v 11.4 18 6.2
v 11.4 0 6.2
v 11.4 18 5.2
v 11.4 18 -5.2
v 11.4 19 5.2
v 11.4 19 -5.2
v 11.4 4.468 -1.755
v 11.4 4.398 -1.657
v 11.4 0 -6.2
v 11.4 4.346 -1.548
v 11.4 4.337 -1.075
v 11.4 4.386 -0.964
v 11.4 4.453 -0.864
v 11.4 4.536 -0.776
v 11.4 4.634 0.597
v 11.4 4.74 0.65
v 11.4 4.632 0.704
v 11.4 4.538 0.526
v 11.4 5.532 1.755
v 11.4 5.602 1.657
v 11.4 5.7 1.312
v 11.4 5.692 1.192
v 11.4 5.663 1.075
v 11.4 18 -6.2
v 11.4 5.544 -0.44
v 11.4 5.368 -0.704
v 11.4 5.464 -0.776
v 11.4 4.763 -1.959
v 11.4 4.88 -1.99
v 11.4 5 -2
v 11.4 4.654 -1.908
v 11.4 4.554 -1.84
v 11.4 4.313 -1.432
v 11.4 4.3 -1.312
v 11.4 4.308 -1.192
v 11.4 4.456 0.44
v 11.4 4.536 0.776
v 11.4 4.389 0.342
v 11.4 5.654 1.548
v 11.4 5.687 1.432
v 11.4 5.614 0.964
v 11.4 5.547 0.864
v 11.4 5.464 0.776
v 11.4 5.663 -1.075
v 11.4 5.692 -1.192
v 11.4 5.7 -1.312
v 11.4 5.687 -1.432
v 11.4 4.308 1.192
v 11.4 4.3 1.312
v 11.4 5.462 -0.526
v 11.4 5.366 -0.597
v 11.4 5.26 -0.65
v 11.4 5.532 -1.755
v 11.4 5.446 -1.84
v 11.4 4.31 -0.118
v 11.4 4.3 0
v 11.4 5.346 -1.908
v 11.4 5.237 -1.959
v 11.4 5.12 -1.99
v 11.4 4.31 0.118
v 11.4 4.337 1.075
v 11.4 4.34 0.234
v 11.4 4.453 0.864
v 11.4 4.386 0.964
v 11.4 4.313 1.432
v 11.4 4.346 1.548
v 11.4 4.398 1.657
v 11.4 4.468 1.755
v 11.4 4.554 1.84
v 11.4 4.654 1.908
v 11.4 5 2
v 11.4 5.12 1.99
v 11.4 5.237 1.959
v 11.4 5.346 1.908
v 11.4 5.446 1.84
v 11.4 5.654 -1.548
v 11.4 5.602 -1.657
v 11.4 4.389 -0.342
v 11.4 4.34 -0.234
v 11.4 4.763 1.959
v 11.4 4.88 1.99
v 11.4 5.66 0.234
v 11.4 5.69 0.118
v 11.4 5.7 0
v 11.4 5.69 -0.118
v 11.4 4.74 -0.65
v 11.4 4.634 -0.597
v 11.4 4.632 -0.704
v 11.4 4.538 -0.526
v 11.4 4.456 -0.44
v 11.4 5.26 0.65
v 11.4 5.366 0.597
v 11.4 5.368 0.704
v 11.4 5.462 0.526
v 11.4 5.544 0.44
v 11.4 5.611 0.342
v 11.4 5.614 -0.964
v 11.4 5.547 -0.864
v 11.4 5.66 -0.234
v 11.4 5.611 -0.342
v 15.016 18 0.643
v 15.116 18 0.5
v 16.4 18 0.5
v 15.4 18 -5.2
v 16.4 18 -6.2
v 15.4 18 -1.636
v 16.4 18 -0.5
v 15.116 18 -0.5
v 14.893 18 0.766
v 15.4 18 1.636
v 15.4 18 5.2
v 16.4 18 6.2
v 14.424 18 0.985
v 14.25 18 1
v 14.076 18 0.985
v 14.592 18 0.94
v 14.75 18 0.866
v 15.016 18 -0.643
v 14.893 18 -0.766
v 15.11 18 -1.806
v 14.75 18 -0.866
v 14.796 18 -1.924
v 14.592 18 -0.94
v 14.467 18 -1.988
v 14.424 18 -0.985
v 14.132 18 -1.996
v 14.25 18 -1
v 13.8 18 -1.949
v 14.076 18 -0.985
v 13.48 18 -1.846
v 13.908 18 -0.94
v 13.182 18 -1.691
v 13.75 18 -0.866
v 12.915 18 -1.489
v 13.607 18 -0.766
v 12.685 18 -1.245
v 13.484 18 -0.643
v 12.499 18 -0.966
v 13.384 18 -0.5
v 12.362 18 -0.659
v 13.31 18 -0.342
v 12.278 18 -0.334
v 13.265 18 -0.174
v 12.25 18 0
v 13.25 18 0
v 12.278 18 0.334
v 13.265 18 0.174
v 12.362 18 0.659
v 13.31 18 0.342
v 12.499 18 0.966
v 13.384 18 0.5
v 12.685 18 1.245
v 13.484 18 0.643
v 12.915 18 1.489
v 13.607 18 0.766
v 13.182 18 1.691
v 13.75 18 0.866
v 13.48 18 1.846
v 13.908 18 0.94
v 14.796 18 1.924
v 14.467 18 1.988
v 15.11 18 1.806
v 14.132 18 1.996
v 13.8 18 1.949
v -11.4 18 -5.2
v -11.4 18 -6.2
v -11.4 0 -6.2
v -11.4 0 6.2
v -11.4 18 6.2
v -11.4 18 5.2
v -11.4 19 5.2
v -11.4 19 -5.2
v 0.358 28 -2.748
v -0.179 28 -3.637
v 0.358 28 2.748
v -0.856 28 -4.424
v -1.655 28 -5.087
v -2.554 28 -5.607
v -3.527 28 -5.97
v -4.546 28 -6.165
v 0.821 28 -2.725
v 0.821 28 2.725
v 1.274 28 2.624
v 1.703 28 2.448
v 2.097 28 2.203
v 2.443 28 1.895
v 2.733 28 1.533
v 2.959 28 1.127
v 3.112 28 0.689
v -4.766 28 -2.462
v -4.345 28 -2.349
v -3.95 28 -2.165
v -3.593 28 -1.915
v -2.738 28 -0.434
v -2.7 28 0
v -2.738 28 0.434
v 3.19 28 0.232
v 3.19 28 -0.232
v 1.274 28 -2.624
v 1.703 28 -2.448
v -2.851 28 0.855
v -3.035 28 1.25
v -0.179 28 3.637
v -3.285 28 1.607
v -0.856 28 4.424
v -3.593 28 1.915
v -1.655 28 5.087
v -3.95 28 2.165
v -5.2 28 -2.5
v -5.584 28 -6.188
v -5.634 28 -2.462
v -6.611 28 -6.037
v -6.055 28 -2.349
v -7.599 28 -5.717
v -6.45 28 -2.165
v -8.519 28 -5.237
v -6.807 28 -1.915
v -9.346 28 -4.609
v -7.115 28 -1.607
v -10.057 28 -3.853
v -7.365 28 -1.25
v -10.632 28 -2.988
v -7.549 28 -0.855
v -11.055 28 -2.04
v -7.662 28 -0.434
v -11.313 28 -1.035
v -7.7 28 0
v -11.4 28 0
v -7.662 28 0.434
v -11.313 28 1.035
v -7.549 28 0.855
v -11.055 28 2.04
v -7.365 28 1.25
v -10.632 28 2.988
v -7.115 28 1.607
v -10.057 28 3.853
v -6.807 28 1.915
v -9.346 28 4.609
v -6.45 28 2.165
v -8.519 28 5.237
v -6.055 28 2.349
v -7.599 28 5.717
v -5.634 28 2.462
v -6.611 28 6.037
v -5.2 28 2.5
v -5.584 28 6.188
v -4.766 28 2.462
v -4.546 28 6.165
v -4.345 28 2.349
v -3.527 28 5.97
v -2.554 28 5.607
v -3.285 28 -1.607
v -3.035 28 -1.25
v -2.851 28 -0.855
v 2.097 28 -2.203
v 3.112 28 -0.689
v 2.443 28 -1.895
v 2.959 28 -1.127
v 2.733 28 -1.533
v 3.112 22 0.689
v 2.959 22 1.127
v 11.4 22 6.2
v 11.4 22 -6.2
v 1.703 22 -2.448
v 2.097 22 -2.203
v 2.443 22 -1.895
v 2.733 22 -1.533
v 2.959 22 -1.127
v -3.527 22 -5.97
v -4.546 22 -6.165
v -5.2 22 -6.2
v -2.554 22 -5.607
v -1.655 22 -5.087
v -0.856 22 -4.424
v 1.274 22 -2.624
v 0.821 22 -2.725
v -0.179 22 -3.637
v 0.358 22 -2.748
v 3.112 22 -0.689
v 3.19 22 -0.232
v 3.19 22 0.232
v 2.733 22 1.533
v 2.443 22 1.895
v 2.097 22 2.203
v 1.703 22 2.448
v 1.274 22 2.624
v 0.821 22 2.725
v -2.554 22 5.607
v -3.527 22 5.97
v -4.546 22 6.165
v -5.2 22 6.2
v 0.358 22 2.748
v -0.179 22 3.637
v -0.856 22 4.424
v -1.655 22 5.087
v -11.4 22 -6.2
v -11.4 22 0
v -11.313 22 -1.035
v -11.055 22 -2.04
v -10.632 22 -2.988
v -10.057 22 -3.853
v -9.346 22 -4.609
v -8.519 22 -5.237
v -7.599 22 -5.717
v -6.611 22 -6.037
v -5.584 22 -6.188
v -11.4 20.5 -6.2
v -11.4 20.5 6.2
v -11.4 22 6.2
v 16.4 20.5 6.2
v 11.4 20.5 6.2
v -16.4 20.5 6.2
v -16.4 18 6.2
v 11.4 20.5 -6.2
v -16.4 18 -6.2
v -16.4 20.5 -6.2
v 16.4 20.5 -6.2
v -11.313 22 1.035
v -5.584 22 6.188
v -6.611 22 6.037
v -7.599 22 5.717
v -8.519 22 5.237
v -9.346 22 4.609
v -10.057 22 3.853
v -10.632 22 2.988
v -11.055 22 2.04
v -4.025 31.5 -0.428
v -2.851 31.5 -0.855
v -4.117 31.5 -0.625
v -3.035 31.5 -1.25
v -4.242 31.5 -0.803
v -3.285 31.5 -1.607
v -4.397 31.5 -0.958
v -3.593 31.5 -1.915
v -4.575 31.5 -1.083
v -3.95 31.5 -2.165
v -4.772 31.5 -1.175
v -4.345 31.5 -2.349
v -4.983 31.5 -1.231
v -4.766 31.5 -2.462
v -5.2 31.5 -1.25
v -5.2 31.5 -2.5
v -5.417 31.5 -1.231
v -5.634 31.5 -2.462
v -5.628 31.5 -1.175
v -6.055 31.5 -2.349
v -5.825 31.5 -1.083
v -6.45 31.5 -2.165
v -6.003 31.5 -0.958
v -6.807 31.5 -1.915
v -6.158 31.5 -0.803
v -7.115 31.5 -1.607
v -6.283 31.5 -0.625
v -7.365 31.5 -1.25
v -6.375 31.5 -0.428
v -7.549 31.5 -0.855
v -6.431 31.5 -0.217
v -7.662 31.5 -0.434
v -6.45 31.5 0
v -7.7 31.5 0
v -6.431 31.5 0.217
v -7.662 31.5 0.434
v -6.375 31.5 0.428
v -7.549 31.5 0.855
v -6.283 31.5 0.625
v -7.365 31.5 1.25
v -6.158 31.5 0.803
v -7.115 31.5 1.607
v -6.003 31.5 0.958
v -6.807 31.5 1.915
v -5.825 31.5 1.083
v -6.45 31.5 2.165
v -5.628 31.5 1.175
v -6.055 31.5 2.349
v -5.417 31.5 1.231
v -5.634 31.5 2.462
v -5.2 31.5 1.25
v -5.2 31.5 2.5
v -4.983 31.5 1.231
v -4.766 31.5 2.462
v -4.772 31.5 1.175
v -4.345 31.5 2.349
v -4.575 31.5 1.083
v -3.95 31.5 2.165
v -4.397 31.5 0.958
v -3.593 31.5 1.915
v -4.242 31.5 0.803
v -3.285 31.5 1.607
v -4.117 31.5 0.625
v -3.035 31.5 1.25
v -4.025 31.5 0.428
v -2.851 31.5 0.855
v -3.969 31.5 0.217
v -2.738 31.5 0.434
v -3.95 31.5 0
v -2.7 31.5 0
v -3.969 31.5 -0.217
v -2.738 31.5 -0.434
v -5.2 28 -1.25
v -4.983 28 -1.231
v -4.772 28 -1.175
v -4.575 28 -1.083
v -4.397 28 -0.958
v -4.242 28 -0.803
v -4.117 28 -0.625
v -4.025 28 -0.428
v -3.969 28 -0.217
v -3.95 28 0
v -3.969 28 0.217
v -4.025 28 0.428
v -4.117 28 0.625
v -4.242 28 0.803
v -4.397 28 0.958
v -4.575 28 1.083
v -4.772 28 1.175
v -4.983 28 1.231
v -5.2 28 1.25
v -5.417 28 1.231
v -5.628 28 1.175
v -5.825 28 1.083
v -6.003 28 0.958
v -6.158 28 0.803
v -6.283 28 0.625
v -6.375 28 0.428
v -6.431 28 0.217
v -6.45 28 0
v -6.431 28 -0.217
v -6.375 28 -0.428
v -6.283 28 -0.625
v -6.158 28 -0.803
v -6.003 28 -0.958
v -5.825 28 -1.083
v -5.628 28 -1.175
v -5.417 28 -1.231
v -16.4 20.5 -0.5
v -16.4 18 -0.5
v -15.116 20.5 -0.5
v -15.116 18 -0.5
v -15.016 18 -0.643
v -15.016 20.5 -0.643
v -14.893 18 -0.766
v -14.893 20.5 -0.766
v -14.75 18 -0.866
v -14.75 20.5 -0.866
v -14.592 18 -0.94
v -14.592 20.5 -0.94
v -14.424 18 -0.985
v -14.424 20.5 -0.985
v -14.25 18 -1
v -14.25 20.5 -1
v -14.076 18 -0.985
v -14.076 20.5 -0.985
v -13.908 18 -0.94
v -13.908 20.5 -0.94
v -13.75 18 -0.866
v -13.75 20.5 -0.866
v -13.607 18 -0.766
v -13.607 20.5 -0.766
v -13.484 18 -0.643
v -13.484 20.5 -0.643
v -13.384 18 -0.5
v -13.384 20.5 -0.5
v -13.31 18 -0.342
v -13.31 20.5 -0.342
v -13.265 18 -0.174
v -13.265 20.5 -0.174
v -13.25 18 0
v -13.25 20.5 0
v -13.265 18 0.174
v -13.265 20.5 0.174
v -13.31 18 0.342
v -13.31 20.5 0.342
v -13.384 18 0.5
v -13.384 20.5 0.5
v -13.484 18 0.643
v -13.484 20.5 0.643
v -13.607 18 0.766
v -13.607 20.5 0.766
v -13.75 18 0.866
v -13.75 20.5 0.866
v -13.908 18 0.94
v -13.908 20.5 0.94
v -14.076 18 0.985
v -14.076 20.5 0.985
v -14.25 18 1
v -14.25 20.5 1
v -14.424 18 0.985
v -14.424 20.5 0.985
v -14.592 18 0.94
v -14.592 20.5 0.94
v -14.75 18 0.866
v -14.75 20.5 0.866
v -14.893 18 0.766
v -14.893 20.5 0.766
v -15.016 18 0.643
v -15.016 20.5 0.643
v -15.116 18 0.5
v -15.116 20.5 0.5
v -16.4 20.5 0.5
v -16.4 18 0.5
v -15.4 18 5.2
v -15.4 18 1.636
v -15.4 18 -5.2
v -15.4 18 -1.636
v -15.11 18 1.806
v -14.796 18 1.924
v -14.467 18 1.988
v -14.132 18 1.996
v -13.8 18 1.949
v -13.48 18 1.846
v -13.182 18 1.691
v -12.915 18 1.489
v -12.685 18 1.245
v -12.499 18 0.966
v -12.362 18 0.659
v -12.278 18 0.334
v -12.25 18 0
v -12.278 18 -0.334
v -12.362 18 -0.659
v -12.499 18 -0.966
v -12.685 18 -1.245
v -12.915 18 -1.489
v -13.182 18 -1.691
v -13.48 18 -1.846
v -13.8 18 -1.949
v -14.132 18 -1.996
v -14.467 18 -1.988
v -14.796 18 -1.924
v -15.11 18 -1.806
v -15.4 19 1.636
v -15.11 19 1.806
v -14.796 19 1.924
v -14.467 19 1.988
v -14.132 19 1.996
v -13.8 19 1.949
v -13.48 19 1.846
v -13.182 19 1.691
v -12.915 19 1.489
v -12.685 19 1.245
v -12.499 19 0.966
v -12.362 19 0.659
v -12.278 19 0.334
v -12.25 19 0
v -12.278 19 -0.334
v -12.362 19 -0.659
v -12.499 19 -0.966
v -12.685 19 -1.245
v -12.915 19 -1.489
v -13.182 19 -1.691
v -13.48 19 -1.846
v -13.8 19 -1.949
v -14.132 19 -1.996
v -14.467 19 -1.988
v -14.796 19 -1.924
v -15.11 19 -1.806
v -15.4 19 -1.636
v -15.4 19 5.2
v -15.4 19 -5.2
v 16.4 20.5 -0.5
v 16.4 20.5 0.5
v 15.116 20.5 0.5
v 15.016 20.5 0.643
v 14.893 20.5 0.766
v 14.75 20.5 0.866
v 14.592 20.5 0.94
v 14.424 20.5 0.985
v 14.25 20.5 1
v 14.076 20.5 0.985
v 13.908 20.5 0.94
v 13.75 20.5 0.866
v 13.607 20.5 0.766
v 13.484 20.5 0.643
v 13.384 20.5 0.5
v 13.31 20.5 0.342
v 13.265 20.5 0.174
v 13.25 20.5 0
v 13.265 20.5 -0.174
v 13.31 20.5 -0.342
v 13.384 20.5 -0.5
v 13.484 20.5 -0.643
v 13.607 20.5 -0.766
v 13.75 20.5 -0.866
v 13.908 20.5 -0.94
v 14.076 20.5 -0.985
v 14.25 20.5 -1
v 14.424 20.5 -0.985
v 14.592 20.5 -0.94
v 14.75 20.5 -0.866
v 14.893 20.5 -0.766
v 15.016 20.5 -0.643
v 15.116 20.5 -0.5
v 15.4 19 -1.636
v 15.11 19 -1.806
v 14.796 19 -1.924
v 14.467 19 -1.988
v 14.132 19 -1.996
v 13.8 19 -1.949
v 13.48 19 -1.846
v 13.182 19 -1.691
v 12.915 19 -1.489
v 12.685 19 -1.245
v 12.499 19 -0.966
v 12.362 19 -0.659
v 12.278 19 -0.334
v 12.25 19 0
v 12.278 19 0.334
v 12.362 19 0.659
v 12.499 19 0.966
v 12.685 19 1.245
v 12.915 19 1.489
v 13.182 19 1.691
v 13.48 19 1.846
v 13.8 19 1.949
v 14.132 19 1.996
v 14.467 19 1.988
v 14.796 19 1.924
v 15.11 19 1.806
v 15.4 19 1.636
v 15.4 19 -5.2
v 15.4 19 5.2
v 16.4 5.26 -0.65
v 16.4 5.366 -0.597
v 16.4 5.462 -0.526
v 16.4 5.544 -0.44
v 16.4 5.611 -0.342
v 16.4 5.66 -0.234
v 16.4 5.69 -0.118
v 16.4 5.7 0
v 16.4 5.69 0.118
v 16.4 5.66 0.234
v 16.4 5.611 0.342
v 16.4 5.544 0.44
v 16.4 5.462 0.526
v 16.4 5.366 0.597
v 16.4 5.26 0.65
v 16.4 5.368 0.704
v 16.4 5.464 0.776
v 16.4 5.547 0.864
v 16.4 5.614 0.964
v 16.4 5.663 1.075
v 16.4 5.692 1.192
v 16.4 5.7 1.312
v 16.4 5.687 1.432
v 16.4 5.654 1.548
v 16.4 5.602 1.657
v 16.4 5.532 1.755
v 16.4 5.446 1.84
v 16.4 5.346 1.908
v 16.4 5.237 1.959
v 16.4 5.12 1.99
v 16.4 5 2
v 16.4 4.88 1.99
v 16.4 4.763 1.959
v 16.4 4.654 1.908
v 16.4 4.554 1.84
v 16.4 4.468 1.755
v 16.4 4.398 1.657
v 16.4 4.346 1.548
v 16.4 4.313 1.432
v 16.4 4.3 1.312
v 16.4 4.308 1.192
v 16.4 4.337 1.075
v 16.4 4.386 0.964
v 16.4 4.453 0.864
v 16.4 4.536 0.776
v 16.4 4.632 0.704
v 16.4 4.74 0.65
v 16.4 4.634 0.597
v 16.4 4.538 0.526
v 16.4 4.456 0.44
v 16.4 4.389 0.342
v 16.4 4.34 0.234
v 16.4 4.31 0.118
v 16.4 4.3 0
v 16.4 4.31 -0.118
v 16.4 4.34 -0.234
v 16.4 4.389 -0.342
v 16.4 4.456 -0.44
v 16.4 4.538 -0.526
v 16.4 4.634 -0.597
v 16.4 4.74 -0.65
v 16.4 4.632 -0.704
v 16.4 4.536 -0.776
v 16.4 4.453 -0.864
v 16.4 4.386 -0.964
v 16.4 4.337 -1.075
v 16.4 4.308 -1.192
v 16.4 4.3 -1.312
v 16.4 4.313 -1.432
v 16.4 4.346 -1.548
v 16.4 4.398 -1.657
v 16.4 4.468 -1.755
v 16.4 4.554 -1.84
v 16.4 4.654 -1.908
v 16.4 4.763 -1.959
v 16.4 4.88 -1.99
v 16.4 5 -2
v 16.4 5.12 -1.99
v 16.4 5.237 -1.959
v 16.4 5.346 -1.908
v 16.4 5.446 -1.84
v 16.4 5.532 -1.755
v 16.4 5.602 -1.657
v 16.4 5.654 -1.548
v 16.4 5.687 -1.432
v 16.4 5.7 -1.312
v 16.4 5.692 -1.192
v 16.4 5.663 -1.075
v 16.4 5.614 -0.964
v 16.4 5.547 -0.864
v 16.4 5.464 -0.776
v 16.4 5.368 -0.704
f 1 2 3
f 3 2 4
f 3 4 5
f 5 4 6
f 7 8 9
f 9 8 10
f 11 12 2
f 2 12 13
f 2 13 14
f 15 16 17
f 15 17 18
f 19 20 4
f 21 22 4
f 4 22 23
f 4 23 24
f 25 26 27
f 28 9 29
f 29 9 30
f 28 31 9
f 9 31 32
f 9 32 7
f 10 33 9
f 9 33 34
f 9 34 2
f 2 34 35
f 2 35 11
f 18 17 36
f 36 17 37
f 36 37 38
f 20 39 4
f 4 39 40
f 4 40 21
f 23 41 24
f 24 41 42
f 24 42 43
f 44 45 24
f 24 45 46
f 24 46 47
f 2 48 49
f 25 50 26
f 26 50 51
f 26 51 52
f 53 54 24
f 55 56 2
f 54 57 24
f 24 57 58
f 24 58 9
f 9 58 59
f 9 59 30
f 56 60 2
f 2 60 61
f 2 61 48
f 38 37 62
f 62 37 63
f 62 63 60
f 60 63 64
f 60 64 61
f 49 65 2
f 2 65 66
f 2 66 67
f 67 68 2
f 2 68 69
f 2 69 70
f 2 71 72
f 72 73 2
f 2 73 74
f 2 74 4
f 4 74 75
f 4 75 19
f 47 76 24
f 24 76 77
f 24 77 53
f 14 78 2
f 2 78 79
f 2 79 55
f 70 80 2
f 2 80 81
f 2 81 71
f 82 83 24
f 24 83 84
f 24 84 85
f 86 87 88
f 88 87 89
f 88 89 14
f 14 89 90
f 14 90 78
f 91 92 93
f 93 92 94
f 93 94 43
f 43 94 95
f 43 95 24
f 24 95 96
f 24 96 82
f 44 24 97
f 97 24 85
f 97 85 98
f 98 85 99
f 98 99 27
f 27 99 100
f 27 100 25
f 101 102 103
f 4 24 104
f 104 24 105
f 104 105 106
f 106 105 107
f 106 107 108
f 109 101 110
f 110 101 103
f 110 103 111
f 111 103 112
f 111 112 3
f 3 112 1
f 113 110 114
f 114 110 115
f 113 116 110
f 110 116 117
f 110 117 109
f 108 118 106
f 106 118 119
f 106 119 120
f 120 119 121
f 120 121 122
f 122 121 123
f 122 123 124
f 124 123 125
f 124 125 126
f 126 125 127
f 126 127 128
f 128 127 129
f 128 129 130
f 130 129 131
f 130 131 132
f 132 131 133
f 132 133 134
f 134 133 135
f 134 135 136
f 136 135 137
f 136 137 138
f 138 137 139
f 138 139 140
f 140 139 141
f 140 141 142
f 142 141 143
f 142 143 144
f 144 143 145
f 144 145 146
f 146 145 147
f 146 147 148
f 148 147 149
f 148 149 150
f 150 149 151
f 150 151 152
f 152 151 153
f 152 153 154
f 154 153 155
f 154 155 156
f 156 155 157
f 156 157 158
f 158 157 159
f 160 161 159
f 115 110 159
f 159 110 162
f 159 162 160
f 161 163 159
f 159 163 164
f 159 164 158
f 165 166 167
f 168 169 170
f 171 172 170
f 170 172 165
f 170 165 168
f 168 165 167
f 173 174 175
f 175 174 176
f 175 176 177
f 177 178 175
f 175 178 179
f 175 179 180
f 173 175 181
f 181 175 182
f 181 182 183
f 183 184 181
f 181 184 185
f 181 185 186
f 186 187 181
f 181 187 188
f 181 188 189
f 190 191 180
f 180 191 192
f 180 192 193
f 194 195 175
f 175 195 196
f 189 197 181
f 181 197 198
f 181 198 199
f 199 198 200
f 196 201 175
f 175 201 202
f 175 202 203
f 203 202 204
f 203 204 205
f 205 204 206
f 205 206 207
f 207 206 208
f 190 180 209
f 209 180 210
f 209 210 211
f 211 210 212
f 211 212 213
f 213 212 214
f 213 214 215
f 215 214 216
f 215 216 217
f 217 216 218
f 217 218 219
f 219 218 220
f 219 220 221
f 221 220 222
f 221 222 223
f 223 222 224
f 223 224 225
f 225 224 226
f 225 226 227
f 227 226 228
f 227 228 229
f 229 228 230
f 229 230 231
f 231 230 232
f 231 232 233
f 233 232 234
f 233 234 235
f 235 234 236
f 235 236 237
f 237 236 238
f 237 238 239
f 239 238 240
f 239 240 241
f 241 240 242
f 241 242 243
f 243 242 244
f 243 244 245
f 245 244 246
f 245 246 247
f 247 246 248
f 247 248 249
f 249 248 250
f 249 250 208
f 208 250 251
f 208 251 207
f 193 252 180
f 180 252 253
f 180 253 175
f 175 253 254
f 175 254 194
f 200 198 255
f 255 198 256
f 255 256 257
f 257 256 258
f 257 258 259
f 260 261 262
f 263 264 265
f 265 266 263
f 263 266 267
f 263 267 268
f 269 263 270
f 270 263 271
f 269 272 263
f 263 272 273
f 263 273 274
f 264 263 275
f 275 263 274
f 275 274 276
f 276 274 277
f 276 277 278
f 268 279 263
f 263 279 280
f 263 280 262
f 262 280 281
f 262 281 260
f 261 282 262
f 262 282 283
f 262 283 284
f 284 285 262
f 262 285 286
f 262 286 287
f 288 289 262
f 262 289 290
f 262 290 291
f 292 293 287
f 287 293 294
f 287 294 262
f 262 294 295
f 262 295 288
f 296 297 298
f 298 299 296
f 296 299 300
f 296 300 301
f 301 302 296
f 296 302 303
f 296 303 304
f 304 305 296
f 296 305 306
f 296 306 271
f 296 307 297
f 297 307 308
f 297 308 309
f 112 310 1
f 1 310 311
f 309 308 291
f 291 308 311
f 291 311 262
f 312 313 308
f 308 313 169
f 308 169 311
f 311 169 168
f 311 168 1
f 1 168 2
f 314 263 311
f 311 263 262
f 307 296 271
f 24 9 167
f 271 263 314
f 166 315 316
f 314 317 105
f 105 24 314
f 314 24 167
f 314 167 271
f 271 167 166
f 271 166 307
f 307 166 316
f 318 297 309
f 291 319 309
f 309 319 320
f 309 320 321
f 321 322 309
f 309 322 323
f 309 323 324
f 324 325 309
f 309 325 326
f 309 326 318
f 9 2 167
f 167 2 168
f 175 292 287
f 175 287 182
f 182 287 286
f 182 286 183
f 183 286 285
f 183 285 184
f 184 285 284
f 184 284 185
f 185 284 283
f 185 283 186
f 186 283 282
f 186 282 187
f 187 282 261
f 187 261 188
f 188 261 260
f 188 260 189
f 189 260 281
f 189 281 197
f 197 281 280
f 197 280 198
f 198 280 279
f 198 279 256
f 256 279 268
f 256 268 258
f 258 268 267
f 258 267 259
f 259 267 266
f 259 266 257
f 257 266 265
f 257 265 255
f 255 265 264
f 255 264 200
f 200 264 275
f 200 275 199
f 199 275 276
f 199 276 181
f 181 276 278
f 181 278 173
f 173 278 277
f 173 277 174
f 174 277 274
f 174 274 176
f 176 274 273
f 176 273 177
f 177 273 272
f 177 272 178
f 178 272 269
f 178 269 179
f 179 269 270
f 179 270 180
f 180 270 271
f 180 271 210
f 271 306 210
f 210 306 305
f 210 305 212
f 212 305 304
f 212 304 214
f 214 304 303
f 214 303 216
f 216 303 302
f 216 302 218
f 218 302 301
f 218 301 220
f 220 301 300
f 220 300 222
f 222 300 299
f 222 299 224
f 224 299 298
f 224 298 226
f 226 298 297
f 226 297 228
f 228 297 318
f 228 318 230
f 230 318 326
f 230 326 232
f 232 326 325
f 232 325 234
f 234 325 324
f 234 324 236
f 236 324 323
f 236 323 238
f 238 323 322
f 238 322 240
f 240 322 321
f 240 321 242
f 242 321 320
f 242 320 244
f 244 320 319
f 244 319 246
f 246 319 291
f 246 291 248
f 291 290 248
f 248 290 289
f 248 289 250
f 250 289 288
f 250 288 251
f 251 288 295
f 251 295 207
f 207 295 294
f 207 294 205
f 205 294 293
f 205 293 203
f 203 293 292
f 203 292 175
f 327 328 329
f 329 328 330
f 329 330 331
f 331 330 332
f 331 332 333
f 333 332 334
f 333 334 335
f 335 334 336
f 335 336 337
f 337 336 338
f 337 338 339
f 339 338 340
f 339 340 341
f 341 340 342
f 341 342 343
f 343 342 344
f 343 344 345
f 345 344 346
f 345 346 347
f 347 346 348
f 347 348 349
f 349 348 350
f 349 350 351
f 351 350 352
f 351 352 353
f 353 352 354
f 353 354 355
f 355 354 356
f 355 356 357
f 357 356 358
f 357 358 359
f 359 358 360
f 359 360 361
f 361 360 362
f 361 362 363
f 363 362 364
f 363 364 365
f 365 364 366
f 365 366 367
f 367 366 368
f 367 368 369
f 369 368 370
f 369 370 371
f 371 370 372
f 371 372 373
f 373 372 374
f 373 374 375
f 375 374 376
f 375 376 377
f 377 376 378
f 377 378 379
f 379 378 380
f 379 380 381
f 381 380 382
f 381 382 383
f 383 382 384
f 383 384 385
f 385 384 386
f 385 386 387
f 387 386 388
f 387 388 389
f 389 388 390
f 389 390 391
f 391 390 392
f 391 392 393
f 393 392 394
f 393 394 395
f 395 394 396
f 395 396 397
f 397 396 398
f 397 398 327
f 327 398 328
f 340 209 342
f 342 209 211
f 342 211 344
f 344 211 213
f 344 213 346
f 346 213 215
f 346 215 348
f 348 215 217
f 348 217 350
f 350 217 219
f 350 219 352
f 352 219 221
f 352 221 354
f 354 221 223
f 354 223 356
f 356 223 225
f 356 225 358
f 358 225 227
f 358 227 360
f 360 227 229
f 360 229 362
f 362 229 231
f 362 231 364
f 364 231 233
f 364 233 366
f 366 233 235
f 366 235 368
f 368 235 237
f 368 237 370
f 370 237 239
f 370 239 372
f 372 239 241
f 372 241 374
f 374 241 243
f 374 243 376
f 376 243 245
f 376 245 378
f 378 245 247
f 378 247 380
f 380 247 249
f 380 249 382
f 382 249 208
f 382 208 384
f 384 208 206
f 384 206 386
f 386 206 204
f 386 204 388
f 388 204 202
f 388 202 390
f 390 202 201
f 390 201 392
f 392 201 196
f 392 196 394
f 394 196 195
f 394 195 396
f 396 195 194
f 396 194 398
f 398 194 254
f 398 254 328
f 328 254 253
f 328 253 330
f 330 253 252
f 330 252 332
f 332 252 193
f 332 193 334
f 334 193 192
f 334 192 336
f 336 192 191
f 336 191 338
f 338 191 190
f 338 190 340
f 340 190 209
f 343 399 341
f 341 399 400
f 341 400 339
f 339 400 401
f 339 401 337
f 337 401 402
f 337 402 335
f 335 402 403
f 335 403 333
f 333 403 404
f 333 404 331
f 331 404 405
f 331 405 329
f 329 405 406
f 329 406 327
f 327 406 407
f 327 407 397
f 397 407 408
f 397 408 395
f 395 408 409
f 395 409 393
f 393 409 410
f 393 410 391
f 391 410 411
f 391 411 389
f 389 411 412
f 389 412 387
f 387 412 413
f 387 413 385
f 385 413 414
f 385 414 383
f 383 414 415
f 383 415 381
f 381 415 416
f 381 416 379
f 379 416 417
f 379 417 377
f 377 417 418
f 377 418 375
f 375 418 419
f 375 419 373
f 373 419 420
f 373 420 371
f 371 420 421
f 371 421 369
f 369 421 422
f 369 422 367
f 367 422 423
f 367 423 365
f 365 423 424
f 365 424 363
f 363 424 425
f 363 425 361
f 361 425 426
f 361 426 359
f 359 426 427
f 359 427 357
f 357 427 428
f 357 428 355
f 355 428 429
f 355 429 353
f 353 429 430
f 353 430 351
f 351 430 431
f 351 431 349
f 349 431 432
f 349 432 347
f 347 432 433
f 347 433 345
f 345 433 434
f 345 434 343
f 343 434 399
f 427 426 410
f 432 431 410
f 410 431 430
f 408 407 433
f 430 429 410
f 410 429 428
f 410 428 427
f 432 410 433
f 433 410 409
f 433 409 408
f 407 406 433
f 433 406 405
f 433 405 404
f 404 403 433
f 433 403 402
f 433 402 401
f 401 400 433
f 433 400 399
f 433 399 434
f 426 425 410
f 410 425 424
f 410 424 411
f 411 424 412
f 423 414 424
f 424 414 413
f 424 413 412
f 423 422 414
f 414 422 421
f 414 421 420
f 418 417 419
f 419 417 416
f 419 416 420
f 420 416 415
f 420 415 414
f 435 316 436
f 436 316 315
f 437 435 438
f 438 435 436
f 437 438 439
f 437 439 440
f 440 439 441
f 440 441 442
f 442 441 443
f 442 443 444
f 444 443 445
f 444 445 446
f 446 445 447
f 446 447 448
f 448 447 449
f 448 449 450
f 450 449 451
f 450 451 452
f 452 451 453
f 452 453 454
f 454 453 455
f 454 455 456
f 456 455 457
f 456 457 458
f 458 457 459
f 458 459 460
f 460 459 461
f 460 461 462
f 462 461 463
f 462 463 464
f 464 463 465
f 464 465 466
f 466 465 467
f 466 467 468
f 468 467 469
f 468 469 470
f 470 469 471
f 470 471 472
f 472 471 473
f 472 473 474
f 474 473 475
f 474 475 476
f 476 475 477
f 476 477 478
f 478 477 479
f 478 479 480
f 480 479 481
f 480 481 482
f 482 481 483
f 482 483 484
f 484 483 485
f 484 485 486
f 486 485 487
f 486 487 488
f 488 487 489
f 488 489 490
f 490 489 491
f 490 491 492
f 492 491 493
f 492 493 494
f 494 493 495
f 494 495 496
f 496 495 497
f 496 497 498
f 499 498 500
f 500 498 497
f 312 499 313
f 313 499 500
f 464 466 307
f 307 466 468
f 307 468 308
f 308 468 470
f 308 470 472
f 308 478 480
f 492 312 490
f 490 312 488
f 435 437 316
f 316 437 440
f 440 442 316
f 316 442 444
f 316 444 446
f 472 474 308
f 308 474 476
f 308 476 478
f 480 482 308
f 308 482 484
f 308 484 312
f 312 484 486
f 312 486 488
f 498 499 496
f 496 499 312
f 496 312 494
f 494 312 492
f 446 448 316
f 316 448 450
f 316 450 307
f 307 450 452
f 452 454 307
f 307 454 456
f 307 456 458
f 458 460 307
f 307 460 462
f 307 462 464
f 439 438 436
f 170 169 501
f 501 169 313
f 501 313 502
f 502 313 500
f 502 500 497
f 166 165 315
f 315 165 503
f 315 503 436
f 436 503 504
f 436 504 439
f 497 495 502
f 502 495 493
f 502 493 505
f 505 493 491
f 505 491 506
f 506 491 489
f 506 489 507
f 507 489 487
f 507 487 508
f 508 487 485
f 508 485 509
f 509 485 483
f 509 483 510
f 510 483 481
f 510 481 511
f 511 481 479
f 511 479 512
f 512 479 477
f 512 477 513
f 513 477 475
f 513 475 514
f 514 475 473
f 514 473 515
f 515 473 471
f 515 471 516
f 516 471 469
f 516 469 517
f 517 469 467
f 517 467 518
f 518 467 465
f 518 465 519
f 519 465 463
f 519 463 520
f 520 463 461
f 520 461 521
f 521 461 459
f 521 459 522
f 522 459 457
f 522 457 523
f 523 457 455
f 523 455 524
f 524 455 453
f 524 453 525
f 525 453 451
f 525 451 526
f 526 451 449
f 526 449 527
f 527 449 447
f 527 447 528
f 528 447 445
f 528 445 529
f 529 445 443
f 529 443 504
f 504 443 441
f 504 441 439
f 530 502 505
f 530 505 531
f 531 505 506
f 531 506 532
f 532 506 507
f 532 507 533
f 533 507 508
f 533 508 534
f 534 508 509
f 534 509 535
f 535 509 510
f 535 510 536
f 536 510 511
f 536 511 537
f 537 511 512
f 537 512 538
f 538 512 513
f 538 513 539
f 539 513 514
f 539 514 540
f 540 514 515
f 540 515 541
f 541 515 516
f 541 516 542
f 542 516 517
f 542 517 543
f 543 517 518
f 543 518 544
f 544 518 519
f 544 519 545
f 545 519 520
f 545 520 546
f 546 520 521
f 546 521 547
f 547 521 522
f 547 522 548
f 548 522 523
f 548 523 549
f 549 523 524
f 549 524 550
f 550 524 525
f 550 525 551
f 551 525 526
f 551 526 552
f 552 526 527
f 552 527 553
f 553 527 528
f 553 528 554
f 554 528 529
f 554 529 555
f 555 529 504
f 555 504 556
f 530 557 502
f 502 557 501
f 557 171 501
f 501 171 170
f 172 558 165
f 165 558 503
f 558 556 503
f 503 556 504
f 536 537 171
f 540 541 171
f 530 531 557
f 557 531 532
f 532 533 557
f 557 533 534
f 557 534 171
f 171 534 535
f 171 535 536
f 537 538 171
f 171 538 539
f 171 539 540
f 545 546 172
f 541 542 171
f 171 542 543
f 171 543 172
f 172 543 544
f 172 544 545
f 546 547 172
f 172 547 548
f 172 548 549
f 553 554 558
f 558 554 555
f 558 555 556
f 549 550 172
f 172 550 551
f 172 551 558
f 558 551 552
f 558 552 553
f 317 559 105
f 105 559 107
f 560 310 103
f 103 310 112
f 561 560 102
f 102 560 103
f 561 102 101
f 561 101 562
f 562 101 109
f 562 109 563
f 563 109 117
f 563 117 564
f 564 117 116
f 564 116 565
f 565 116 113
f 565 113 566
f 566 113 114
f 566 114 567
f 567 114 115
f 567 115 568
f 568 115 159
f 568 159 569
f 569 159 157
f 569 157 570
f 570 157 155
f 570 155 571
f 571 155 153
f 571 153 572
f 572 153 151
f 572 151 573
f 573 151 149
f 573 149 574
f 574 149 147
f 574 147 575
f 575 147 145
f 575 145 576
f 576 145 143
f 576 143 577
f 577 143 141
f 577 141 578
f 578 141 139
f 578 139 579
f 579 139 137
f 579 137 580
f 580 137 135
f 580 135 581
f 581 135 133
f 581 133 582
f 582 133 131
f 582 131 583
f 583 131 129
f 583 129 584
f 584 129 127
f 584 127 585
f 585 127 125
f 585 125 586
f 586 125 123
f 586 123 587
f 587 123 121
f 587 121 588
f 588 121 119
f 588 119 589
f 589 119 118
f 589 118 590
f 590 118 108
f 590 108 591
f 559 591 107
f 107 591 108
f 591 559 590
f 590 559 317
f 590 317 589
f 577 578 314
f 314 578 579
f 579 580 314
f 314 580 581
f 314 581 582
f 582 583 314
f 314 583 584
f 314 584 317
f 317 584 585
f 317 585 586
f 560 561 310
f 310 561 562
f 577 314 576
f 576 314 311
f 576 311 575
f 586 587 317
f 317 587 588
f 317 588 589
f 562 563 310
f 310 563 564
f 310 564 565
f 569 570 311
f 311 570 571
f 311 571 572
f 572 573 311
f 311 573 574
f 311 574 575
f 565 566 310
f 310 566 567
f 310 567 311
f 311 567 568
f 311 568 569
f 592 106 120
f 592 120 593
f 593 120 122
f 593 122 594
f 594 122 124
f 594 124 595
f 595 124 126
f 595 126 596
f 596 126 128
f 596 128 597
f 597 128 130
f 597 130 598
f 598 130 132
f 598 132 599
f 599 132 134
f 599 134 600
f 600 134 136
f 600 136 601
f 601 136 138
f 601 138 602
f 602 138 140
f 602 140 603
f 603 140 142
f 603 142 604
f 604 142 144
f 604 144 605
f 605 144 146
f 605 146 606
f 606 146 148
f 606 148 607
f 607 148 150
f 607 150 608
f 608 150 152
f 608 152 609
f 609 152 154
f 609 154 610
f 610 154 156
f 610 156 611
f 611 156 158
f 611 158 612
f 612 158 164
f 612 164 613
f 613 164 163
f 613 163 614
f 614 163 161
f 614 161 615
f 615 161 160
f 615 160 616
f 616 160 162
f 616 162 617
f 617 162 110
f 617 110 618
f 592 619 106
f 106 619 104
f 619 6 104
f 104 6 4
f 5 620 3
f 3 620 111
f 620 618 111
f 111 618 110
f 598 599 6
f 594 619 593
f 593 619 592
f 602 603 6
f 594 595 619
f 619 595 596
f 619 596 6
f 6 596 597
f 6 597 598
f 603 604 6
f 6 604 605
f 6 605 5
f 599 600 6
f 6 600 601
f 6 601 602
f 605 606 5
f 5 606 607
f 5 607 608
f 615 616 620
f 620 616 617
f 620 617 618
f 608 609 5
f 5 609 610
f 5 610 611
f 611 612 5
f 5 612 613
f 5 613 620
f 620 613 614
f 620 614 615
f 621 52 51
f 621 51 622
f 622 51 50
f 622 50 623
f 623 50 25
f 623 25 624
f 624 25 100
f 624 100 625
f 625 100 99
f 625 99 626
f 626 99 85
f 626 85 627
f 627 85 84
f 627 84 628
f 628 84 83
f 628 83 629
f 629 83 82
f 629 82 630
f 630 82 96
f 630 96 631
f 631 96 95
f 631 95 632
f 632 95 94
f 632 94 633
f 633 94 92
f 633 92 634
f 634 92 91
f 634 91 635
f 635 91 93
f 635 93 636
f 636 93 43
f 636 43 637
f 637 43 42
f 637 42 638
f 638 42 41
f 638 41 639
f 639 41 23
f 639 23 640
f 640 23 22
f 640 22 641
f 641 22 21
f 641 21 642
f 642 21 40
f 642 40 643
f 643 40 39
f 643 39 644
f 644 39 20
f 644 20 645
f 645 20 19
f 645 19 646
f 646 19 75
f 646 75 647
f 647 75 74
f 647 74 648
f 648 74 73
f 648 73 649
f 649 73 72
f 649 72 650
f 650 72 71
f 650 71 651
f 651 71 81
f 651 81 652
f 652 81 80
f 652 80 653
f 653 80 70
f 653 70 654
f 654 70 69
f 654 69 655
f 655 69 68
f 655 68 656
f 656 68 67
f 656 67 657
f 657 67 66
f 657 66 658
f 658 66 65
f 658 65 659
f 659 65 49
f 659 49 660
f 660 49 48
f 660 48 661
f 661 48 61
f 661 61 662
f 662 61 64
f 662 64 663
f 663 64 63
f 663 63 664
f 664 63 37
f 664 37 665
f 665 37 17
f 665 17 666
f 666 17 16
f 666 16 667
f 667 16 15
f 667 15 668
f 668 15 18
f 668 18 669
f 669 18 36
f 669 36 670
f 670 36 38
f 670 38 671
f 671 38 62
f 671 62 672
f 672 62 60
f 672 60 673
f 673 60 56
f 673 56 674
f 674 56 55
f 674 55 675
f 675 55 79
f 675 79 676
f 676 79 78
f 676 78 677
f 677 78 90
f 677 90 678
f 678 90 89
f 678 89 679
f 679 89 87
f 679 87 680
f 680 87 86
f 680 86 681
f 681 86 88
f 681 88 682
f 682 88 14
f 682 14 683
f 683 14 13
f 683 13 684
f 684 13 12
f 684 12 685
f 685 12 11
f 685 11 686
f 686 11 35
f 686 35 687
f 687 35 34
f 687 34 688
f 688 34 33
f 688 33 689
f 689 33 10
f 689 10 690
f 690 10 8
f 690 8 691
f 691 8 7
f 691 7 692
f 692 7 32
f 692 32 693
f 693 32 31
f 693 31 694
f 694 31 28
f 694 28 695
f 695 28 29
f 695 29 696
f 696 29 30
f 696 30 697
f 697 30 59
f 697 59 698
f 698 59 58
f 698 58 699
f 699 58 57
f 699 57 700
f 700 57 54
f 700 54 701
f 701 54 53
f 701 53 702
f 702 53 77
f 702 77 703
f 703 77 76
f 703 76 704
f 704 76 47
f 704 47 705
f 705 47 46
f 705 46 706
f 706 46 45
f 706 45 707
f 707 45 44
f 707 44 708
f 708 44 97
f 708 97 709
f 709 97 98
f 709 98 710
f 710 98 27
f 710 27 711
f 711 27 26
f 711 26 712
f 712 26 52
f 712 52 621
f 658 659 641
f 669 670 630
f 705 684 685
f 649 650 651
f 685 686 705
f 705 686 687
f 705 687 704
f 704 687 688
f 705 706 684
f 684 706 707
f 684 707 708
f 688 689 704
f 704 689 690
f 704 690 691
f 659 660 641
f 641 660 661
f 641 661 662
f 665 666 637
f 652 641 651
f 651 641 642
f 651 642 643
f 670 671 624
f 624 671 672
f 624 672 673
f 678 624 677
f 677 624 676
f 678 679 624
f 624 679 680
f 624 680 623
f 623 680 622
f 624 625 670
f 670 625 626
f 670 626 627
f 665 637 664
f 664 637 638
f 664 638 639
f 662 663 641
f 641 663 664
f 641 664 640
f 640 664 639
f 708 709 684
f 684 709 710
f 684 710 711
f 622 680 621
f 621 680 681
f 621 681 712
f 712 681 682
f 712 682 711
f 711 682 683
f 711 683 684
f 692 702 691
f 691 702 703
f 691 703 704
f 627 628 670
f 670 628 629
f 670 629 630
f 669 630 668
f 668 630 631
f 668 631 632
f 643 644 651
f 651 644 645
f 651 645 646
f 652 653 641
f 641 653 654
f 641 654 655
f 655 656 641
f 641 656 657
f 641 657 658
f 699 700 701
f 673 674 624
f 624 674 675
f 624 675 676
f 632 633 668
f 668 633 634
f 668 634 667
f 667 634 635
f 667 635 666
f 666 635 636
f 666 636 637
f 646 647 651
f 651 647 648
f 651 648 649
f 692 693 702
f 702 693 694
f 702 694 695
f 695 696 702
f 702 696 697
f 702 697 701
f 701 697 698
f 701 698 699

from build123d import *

# Parameters (mm, degrees)
SKETCH1_W           = 22.8
SKETCH1_H           = 12.4
BOSS_EXTRUDE1_DEPTH = 22
BOSS_EXTRUDE3_DEPTH = 6
SKETCH3_R           = 2.5
SKETCH3_R_2         = 1.25
BOSS_EXTRUDE4_DEPTH = 3.5
BOSS_EXTRUDE5_DEPTH = 2.5
CUT_EXTRUDE1_DEPTH  = 1
BOSS_EXTRUDE6_DEPTH = 5


with BuildPart() as part:
    # Sketch1 → Boss-Extrude1 (new body)
    with BuildSketch(Plane(origin=(0, 0, 0), x_dir=(1, 0, 0), z_dir=(0, 1, 0))):
        Rectangle(SKETCH1_W, SKETCH1_H)
    extrude(amount=BOSS_EXTRUDE1_DEPTH)

    # Sketch2 → Boss-Extrude3 (add)
    with BuildSketch(Plane(origin=(0, 22, 0), x_dir=(1, 0, 0), z_dir=(0, 1, 0))):
        with BuildLine():
            ThreePointArc((0.357522124, 2.748444622), (-11.4, 0), (0.357522124, -2.748444622))
            ThreePointArc((0.357522124, -2.748444622), (3.2, 0), (0.357522124, 2.748444622))
        make_face()
    extrude(amount=BOSS_EXTRUDE3_DEPTH)

    # Sketch3 → Boss-Extrude4 (add)
    with BuildSketch(Plane(origin=(0, 28, 0), x_dir=(1, 0, 0), z_dir=(0, 1, 0))):
        with Locations((-5.2, 0)):
            Circle(SKETCH3_R)
        with Locations((-5.2, 0)):
            Circle(SKETCH3_R_2, mode=Mode.SUBTRACT)
    extrude(amount=BOSS_EXTRUDE4_DEPTH)

    # Sketch4 → Boss-Extrude5 (add)
    with BuildSketch(Plane(origin=(0, 18, 0), x_dir=(1, 0, 0), z_dir=(0, 1, 0))):
        with BuildLine():
            Line((-16.4, -0.5), (-16.4, -6.2))
            Line((-16.4, -6.2), (-11.4, -6.2))
            Line((-11.4, -6.2), (-11.4, 6.2))
            Line((-11.4, 6.2), (-16.4, 6.2))
            Line((-16.4, 6.2), (-16.4, 0.5))
            Line((-16.4, 0.5), (-15.116025404, 0.5))
            ThreePointArc((-15.116025404, 0.5), (-13.25, 0), (-15.116025404, -0.5))
            Line((-15.116025404, -0.5), (-16.4, -0.5))
        make_face()
    boss_extrude5 = extrude(amount=BOSS_EXTRUDE5_DEPTH)

    # Sketch5 → Cut-Extrude1 (cut)
    with BuildSketch(Plane.XZ.offset(-18)):
        with BuildLine():
            Line((-11.4, -5.2), (-11.4, 5.2))
            Line((-11.4, 5.2), (-15.4, 5.2))
            Line((-15.4, 5.2), (-15.4, 1.636306817))
            ThreePointArc((-15.4, 1.636306817), (-12.25, 0), (-15.4, -1.636306817))
            Line((-15.4, -1.636306817), (-15.4, -5.2))
            Line((-15.4, -5.2), (-11.4, -5.2))
        make_face()
    cut_extrude1 = extrude(amount=-CUT_EXTRUDE1_DEPTH, mode=Mode.SUBTRACT)

    # Mirror1: Boss-Extrude5, Cut-Extrude1 across plane
    add(boss_extrude5.mirror(Plane(origin=(0, 0, 0), x_dir=(0, 0, 1), z_dir=(1, 0, 0))))
    add(cut_extrude1.mirror(Plane(origin=(0, 0, 0), x_dir=(0, 0, 1), z_dir=(1, 0, 0))), mode=Mode.SUBTRACT)

    # Sketch6 → Boss-Extrude6 (add)
    with BuildSketch(Plane(origin=(11.4, 0, 0), x_dir=(0, 0, -1), z_dir=(1, 0, 0))):
        with BuildLine():
            ThreePointArc((-0.65, 4.740192379), (0, 4.3), (0.65, 4.740192379))
            ThreePointArc((0.65, 4.740192379), (2, 5), (0.65, 5.259807621))
            ThreePointArc((0.65, 5.259807621), (0, 5.7), (-0.65, 5.259807621))
            ThreePointArc((-0.65, 5.259807621), (-2, 5), (-0.65, 4.740192379))
        make_face()
    extrude(amount=BOSS_EXTRUDE6_DEPTH)


solid = part.part
